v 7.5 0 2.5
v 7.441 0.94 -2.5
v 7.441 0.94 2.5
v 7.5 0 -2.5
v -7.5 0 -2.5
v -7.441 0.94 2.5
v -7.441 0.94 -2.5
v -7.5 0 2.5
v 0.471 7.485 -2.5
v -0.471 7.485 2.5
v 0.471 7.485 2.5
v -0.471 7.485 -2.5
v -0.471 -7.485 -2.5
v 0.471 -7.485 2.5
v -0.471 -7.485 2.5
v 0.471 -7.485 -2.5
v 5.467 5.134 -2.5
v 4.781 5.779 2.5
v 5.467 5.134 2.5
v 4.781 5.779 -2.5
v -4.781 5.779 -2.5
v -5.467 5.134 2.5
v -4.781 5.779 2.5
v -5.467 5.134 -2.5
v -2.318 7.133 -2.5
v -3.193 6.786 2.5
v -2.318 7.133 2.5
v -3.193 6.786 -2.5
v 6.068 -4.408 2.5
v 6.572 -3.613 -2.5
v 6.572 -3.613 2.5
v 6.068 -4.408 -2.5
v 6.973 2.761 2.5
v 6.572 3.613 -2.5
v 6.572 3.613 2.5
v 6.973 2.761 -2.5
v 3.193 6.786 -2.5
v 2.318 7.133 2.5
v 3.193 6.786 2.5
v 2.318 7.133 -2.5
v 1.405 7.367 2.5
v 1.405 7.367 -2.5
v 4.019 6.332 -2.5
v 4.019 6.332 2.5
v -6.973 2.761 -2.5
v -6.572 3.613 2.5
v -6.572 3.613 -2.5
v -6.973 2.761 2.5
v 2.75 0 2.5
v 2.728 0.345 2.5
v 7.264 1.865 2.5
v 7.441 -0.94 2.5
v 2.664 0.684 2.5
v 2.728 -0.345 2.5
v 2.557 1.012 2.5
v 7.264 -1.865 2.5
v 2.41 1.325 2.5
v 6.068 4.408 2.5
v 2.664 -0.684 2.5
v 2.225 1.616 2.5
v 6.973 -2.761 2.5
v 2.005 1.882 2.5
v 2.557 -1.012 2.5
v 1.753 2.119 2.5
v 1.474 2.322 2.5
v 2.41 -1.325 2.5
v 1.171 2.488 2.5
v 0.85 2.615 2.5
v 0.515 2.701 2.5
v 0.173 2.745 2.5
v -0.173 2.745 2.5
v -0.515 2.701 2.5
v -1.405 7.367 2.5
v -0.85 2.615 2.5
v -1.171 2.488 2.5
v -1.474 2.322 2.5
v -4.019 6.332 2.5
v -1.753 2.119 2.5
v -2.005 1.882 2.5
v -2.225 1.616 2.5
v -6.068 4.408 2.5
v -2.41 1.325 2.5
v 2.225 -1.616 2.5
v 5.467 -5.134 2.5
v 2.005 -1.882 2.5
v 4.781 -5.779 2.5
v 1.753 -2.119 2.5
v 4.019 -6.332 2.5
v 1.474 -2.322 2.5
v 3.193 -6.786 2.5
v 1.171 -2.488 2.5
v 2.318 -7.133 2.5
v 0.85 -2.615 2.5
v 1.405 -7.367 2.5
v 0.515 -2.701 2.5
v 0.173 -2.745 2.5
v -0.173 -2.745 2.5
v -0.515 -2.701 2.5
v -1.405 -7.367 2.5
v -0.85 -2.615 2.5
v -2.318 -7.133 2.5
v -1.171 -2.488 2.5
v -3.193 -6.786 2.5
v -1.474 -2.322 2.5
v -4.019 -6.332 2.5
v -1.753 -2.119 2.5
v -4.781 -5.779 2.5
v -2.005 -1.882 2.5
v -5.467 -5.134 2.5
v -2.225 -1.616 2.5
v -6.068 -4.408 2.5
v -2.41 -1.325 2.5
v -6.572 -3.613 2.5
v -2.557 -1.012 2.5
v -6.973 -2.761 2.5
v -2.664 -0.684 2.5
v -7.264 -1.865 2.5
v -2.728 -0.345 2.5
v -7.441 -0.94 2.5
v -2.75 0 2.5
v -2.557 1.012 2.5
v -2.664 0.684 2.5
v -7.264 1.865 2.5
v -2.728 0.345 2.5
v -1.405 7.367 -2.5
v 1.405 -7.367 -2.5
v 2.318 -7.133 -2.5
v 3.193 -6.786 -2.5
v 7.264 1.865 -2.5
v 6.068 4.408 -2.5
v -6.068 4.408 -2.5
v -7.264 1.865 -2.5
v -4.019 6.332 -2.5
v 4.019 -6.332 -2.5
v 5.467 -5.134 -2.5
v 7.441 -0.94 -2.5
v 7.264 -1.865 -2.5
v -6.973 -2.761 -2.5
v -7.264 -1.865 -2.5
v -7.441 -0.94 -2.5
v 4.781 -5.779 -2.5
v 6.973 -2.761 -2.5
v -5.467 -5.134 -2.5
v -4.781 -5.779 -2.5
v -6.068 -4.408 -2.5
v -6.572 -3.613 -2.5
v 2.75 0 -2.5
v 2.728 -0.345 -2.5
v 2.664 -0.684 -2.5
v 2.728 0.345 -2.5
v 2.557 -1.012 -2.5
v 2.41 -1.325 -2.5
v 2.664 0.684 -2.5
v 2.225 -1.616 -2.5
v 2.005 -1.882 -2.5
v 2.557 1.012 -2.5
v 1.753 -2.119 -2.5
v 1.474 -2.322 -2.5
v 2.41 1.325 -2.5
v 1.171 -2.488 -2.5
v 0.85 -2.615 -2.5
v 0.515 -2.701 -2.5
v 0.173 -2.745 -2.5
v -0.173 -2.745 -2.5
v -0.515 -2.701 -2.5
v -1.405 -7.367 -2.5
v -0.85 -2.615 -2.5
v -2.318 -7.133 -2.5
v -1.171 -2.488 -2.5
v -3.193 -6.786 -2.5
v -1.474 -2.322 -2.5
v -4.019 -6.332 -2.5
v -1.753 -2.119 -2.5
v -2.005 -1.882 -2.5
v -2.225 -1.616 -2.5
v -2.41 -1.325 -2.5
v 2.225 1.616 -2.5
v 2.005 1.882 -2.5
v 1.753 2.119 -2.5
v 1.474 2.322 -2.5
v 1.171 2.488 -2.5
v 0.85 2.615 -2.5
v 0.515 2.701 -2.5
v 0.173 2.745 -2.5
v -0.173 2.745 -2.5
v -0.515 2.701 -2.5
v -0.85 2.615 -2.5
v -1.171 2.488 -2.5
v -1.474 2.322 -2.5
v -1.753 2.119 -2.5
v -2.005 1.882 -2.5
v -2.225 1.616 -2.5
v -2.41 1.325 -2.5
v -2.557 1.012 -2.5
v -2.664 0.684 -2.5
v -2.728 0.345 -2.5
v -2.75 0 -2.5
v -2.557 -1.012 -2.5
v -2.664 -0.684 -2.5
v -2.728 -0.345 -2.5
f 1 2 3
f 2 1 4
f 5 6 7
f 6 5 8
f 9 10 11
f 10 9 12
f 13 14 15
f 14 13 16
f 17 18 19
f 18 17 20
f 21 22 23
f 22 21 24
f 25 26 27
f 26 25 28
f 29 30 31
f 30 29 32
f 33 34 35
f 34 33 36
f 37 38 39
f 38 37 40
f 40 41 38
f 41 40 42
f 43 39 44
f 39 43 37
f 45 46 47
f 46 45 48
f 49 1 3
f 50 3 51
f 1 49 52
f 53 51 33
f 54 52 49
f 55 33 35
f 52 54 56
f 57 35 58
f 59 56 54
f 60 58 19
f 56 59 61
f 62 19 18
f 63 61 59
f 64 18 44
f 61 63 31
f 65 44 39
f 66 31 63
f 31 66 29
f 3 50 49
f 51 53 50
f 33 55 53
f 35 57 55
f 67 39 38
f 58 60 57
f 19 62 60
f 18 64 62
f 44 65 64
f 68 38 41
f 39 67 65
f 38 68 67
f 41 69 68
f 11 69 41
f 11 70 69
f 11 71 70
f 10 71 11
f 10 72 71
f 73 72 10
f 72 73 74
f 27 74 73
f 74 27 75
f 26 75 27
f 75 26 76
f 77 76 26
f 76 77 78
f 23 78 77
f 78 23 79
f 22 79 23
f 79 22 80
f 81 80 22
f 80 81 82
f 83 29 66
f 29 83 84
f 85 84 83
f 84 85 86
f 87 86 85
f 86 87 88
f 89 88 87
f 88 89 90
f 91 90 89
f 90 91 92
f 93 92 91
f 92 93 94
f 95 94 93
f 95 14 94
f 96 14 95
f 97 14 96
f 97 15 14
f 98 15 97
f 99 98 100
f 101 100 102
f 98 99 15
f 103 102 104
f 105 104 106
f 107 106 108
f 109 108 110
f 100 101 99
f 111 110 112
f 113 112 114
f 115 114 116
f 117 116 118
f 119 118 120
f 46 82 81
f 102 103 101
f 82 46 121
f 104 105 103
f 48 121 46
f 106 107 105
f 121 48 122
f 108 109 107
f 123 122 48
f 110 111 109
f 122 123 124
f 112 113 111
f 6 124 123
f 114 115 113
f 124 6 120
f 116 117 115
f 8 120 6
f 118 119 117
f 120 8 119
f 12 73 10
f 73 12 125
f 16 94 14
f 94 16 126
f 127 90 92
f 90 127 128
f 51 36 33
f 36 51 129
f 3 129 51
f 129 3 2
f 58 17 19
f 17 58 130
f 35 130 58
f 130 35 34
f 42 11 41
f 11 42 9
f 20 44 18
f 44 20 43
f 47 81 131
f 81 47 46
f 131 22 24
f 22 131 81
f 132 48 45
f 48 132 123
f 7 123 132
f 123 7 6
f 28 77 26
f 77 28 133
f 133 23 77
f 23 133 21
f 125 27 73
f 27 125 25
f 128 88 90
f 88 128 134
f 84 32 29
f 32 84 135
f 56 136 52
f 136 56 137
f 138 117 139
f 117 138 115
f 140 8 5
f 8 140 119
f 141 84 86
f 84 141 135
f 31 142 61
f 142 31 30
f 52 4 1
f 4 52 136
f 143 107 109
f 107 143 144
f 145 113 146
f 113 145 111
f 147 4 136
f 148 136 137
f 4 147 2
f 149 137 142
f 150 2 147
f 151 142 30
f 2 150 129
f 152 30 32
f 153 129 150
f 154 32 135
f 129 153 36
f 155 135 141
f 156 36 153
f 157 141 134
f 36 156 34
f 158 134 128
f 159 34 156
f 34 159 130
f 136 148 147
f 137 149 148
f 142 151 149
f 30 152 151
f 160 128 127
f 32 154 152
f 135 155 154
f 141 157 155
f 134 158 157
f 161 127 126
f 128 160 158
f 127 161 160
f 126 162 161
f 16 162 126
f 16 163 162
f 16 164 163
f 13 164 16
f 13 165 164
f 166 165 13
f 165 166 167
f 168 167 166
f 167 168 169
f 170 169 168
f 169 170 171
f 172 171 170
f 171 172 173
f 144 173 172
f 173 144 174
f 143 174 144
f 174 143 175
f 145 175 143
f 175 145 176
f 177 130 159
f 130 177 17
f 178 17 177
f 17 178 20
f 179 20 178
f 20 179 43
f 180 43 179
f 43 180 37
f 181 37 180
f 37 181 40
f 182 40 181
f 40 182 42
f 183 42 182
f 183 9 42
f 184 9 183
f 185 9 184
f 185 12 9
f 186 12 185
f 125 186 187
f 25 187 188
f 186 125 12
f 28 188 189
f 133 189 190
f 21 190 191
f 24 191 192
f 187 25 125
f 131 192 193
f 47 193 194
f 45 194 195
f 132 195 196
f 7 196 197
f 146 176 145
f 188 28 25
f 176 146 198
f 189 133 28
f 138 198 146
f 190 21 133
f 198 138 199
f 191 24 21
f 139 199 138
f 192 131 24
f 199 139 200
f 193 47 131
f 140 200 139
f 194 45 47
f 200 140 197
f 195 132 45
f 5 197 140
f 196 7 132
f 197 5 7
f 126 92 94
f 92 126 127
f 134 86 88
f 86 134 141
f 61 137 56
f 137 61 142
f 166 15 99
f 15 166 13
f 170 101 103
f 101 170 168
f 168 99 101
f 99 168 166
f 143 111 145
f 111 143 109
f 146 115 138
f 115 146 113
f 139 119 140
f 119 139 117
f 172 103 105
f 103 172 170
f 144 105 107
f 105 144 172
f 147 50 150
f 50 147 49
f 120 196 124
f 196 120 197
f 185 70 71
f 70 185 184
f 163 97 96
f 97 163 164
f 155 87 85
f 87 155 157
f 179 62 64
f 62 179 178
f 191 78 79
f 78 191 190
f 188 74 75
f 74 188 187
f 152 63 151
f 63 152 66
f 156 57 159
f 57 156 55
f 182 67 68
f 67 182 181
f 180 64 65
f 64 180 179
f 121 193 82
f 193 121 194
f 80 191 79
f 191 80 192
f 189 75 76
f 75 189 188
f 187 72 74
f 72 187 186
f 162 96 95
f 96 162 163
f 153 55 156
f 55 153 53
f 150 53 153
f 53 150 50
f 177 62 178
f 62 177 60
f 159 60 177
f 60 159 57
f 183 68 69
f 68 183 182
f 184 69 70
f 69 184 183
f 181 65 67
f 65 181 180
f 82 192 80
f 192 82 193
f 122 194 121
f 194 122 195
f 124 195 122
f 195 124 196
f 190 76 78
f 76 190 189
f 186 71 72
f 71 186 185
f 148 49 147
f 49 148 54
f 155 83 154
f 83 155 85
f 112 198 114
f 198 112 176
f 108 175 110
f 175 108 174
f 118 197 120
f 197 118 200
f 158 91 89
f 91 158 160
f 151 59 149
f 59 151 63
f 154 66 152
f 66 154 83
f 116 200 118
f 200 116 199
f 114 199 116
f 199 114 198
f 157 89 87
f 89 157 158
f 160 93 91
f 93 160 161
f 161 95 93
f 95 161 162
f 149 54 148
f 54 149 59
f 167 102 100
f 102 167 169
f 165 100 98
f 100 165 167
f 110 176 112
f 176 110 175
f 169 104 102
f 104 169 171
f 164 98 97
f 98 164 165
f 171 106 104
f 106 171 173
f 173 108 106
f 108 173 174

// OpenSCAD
$fn = 50;


difference() {
	union() {
		translate(v = [0, 0, -2.5000000000]) {
			cylinder(h = 5, r = 7.5000000000);
		}
	}
	union() {
		translate(v = [0, 0, -100.0000000000]) {
			cylinder(h = 200, r = 2.7500000000);
		}
	}
}
